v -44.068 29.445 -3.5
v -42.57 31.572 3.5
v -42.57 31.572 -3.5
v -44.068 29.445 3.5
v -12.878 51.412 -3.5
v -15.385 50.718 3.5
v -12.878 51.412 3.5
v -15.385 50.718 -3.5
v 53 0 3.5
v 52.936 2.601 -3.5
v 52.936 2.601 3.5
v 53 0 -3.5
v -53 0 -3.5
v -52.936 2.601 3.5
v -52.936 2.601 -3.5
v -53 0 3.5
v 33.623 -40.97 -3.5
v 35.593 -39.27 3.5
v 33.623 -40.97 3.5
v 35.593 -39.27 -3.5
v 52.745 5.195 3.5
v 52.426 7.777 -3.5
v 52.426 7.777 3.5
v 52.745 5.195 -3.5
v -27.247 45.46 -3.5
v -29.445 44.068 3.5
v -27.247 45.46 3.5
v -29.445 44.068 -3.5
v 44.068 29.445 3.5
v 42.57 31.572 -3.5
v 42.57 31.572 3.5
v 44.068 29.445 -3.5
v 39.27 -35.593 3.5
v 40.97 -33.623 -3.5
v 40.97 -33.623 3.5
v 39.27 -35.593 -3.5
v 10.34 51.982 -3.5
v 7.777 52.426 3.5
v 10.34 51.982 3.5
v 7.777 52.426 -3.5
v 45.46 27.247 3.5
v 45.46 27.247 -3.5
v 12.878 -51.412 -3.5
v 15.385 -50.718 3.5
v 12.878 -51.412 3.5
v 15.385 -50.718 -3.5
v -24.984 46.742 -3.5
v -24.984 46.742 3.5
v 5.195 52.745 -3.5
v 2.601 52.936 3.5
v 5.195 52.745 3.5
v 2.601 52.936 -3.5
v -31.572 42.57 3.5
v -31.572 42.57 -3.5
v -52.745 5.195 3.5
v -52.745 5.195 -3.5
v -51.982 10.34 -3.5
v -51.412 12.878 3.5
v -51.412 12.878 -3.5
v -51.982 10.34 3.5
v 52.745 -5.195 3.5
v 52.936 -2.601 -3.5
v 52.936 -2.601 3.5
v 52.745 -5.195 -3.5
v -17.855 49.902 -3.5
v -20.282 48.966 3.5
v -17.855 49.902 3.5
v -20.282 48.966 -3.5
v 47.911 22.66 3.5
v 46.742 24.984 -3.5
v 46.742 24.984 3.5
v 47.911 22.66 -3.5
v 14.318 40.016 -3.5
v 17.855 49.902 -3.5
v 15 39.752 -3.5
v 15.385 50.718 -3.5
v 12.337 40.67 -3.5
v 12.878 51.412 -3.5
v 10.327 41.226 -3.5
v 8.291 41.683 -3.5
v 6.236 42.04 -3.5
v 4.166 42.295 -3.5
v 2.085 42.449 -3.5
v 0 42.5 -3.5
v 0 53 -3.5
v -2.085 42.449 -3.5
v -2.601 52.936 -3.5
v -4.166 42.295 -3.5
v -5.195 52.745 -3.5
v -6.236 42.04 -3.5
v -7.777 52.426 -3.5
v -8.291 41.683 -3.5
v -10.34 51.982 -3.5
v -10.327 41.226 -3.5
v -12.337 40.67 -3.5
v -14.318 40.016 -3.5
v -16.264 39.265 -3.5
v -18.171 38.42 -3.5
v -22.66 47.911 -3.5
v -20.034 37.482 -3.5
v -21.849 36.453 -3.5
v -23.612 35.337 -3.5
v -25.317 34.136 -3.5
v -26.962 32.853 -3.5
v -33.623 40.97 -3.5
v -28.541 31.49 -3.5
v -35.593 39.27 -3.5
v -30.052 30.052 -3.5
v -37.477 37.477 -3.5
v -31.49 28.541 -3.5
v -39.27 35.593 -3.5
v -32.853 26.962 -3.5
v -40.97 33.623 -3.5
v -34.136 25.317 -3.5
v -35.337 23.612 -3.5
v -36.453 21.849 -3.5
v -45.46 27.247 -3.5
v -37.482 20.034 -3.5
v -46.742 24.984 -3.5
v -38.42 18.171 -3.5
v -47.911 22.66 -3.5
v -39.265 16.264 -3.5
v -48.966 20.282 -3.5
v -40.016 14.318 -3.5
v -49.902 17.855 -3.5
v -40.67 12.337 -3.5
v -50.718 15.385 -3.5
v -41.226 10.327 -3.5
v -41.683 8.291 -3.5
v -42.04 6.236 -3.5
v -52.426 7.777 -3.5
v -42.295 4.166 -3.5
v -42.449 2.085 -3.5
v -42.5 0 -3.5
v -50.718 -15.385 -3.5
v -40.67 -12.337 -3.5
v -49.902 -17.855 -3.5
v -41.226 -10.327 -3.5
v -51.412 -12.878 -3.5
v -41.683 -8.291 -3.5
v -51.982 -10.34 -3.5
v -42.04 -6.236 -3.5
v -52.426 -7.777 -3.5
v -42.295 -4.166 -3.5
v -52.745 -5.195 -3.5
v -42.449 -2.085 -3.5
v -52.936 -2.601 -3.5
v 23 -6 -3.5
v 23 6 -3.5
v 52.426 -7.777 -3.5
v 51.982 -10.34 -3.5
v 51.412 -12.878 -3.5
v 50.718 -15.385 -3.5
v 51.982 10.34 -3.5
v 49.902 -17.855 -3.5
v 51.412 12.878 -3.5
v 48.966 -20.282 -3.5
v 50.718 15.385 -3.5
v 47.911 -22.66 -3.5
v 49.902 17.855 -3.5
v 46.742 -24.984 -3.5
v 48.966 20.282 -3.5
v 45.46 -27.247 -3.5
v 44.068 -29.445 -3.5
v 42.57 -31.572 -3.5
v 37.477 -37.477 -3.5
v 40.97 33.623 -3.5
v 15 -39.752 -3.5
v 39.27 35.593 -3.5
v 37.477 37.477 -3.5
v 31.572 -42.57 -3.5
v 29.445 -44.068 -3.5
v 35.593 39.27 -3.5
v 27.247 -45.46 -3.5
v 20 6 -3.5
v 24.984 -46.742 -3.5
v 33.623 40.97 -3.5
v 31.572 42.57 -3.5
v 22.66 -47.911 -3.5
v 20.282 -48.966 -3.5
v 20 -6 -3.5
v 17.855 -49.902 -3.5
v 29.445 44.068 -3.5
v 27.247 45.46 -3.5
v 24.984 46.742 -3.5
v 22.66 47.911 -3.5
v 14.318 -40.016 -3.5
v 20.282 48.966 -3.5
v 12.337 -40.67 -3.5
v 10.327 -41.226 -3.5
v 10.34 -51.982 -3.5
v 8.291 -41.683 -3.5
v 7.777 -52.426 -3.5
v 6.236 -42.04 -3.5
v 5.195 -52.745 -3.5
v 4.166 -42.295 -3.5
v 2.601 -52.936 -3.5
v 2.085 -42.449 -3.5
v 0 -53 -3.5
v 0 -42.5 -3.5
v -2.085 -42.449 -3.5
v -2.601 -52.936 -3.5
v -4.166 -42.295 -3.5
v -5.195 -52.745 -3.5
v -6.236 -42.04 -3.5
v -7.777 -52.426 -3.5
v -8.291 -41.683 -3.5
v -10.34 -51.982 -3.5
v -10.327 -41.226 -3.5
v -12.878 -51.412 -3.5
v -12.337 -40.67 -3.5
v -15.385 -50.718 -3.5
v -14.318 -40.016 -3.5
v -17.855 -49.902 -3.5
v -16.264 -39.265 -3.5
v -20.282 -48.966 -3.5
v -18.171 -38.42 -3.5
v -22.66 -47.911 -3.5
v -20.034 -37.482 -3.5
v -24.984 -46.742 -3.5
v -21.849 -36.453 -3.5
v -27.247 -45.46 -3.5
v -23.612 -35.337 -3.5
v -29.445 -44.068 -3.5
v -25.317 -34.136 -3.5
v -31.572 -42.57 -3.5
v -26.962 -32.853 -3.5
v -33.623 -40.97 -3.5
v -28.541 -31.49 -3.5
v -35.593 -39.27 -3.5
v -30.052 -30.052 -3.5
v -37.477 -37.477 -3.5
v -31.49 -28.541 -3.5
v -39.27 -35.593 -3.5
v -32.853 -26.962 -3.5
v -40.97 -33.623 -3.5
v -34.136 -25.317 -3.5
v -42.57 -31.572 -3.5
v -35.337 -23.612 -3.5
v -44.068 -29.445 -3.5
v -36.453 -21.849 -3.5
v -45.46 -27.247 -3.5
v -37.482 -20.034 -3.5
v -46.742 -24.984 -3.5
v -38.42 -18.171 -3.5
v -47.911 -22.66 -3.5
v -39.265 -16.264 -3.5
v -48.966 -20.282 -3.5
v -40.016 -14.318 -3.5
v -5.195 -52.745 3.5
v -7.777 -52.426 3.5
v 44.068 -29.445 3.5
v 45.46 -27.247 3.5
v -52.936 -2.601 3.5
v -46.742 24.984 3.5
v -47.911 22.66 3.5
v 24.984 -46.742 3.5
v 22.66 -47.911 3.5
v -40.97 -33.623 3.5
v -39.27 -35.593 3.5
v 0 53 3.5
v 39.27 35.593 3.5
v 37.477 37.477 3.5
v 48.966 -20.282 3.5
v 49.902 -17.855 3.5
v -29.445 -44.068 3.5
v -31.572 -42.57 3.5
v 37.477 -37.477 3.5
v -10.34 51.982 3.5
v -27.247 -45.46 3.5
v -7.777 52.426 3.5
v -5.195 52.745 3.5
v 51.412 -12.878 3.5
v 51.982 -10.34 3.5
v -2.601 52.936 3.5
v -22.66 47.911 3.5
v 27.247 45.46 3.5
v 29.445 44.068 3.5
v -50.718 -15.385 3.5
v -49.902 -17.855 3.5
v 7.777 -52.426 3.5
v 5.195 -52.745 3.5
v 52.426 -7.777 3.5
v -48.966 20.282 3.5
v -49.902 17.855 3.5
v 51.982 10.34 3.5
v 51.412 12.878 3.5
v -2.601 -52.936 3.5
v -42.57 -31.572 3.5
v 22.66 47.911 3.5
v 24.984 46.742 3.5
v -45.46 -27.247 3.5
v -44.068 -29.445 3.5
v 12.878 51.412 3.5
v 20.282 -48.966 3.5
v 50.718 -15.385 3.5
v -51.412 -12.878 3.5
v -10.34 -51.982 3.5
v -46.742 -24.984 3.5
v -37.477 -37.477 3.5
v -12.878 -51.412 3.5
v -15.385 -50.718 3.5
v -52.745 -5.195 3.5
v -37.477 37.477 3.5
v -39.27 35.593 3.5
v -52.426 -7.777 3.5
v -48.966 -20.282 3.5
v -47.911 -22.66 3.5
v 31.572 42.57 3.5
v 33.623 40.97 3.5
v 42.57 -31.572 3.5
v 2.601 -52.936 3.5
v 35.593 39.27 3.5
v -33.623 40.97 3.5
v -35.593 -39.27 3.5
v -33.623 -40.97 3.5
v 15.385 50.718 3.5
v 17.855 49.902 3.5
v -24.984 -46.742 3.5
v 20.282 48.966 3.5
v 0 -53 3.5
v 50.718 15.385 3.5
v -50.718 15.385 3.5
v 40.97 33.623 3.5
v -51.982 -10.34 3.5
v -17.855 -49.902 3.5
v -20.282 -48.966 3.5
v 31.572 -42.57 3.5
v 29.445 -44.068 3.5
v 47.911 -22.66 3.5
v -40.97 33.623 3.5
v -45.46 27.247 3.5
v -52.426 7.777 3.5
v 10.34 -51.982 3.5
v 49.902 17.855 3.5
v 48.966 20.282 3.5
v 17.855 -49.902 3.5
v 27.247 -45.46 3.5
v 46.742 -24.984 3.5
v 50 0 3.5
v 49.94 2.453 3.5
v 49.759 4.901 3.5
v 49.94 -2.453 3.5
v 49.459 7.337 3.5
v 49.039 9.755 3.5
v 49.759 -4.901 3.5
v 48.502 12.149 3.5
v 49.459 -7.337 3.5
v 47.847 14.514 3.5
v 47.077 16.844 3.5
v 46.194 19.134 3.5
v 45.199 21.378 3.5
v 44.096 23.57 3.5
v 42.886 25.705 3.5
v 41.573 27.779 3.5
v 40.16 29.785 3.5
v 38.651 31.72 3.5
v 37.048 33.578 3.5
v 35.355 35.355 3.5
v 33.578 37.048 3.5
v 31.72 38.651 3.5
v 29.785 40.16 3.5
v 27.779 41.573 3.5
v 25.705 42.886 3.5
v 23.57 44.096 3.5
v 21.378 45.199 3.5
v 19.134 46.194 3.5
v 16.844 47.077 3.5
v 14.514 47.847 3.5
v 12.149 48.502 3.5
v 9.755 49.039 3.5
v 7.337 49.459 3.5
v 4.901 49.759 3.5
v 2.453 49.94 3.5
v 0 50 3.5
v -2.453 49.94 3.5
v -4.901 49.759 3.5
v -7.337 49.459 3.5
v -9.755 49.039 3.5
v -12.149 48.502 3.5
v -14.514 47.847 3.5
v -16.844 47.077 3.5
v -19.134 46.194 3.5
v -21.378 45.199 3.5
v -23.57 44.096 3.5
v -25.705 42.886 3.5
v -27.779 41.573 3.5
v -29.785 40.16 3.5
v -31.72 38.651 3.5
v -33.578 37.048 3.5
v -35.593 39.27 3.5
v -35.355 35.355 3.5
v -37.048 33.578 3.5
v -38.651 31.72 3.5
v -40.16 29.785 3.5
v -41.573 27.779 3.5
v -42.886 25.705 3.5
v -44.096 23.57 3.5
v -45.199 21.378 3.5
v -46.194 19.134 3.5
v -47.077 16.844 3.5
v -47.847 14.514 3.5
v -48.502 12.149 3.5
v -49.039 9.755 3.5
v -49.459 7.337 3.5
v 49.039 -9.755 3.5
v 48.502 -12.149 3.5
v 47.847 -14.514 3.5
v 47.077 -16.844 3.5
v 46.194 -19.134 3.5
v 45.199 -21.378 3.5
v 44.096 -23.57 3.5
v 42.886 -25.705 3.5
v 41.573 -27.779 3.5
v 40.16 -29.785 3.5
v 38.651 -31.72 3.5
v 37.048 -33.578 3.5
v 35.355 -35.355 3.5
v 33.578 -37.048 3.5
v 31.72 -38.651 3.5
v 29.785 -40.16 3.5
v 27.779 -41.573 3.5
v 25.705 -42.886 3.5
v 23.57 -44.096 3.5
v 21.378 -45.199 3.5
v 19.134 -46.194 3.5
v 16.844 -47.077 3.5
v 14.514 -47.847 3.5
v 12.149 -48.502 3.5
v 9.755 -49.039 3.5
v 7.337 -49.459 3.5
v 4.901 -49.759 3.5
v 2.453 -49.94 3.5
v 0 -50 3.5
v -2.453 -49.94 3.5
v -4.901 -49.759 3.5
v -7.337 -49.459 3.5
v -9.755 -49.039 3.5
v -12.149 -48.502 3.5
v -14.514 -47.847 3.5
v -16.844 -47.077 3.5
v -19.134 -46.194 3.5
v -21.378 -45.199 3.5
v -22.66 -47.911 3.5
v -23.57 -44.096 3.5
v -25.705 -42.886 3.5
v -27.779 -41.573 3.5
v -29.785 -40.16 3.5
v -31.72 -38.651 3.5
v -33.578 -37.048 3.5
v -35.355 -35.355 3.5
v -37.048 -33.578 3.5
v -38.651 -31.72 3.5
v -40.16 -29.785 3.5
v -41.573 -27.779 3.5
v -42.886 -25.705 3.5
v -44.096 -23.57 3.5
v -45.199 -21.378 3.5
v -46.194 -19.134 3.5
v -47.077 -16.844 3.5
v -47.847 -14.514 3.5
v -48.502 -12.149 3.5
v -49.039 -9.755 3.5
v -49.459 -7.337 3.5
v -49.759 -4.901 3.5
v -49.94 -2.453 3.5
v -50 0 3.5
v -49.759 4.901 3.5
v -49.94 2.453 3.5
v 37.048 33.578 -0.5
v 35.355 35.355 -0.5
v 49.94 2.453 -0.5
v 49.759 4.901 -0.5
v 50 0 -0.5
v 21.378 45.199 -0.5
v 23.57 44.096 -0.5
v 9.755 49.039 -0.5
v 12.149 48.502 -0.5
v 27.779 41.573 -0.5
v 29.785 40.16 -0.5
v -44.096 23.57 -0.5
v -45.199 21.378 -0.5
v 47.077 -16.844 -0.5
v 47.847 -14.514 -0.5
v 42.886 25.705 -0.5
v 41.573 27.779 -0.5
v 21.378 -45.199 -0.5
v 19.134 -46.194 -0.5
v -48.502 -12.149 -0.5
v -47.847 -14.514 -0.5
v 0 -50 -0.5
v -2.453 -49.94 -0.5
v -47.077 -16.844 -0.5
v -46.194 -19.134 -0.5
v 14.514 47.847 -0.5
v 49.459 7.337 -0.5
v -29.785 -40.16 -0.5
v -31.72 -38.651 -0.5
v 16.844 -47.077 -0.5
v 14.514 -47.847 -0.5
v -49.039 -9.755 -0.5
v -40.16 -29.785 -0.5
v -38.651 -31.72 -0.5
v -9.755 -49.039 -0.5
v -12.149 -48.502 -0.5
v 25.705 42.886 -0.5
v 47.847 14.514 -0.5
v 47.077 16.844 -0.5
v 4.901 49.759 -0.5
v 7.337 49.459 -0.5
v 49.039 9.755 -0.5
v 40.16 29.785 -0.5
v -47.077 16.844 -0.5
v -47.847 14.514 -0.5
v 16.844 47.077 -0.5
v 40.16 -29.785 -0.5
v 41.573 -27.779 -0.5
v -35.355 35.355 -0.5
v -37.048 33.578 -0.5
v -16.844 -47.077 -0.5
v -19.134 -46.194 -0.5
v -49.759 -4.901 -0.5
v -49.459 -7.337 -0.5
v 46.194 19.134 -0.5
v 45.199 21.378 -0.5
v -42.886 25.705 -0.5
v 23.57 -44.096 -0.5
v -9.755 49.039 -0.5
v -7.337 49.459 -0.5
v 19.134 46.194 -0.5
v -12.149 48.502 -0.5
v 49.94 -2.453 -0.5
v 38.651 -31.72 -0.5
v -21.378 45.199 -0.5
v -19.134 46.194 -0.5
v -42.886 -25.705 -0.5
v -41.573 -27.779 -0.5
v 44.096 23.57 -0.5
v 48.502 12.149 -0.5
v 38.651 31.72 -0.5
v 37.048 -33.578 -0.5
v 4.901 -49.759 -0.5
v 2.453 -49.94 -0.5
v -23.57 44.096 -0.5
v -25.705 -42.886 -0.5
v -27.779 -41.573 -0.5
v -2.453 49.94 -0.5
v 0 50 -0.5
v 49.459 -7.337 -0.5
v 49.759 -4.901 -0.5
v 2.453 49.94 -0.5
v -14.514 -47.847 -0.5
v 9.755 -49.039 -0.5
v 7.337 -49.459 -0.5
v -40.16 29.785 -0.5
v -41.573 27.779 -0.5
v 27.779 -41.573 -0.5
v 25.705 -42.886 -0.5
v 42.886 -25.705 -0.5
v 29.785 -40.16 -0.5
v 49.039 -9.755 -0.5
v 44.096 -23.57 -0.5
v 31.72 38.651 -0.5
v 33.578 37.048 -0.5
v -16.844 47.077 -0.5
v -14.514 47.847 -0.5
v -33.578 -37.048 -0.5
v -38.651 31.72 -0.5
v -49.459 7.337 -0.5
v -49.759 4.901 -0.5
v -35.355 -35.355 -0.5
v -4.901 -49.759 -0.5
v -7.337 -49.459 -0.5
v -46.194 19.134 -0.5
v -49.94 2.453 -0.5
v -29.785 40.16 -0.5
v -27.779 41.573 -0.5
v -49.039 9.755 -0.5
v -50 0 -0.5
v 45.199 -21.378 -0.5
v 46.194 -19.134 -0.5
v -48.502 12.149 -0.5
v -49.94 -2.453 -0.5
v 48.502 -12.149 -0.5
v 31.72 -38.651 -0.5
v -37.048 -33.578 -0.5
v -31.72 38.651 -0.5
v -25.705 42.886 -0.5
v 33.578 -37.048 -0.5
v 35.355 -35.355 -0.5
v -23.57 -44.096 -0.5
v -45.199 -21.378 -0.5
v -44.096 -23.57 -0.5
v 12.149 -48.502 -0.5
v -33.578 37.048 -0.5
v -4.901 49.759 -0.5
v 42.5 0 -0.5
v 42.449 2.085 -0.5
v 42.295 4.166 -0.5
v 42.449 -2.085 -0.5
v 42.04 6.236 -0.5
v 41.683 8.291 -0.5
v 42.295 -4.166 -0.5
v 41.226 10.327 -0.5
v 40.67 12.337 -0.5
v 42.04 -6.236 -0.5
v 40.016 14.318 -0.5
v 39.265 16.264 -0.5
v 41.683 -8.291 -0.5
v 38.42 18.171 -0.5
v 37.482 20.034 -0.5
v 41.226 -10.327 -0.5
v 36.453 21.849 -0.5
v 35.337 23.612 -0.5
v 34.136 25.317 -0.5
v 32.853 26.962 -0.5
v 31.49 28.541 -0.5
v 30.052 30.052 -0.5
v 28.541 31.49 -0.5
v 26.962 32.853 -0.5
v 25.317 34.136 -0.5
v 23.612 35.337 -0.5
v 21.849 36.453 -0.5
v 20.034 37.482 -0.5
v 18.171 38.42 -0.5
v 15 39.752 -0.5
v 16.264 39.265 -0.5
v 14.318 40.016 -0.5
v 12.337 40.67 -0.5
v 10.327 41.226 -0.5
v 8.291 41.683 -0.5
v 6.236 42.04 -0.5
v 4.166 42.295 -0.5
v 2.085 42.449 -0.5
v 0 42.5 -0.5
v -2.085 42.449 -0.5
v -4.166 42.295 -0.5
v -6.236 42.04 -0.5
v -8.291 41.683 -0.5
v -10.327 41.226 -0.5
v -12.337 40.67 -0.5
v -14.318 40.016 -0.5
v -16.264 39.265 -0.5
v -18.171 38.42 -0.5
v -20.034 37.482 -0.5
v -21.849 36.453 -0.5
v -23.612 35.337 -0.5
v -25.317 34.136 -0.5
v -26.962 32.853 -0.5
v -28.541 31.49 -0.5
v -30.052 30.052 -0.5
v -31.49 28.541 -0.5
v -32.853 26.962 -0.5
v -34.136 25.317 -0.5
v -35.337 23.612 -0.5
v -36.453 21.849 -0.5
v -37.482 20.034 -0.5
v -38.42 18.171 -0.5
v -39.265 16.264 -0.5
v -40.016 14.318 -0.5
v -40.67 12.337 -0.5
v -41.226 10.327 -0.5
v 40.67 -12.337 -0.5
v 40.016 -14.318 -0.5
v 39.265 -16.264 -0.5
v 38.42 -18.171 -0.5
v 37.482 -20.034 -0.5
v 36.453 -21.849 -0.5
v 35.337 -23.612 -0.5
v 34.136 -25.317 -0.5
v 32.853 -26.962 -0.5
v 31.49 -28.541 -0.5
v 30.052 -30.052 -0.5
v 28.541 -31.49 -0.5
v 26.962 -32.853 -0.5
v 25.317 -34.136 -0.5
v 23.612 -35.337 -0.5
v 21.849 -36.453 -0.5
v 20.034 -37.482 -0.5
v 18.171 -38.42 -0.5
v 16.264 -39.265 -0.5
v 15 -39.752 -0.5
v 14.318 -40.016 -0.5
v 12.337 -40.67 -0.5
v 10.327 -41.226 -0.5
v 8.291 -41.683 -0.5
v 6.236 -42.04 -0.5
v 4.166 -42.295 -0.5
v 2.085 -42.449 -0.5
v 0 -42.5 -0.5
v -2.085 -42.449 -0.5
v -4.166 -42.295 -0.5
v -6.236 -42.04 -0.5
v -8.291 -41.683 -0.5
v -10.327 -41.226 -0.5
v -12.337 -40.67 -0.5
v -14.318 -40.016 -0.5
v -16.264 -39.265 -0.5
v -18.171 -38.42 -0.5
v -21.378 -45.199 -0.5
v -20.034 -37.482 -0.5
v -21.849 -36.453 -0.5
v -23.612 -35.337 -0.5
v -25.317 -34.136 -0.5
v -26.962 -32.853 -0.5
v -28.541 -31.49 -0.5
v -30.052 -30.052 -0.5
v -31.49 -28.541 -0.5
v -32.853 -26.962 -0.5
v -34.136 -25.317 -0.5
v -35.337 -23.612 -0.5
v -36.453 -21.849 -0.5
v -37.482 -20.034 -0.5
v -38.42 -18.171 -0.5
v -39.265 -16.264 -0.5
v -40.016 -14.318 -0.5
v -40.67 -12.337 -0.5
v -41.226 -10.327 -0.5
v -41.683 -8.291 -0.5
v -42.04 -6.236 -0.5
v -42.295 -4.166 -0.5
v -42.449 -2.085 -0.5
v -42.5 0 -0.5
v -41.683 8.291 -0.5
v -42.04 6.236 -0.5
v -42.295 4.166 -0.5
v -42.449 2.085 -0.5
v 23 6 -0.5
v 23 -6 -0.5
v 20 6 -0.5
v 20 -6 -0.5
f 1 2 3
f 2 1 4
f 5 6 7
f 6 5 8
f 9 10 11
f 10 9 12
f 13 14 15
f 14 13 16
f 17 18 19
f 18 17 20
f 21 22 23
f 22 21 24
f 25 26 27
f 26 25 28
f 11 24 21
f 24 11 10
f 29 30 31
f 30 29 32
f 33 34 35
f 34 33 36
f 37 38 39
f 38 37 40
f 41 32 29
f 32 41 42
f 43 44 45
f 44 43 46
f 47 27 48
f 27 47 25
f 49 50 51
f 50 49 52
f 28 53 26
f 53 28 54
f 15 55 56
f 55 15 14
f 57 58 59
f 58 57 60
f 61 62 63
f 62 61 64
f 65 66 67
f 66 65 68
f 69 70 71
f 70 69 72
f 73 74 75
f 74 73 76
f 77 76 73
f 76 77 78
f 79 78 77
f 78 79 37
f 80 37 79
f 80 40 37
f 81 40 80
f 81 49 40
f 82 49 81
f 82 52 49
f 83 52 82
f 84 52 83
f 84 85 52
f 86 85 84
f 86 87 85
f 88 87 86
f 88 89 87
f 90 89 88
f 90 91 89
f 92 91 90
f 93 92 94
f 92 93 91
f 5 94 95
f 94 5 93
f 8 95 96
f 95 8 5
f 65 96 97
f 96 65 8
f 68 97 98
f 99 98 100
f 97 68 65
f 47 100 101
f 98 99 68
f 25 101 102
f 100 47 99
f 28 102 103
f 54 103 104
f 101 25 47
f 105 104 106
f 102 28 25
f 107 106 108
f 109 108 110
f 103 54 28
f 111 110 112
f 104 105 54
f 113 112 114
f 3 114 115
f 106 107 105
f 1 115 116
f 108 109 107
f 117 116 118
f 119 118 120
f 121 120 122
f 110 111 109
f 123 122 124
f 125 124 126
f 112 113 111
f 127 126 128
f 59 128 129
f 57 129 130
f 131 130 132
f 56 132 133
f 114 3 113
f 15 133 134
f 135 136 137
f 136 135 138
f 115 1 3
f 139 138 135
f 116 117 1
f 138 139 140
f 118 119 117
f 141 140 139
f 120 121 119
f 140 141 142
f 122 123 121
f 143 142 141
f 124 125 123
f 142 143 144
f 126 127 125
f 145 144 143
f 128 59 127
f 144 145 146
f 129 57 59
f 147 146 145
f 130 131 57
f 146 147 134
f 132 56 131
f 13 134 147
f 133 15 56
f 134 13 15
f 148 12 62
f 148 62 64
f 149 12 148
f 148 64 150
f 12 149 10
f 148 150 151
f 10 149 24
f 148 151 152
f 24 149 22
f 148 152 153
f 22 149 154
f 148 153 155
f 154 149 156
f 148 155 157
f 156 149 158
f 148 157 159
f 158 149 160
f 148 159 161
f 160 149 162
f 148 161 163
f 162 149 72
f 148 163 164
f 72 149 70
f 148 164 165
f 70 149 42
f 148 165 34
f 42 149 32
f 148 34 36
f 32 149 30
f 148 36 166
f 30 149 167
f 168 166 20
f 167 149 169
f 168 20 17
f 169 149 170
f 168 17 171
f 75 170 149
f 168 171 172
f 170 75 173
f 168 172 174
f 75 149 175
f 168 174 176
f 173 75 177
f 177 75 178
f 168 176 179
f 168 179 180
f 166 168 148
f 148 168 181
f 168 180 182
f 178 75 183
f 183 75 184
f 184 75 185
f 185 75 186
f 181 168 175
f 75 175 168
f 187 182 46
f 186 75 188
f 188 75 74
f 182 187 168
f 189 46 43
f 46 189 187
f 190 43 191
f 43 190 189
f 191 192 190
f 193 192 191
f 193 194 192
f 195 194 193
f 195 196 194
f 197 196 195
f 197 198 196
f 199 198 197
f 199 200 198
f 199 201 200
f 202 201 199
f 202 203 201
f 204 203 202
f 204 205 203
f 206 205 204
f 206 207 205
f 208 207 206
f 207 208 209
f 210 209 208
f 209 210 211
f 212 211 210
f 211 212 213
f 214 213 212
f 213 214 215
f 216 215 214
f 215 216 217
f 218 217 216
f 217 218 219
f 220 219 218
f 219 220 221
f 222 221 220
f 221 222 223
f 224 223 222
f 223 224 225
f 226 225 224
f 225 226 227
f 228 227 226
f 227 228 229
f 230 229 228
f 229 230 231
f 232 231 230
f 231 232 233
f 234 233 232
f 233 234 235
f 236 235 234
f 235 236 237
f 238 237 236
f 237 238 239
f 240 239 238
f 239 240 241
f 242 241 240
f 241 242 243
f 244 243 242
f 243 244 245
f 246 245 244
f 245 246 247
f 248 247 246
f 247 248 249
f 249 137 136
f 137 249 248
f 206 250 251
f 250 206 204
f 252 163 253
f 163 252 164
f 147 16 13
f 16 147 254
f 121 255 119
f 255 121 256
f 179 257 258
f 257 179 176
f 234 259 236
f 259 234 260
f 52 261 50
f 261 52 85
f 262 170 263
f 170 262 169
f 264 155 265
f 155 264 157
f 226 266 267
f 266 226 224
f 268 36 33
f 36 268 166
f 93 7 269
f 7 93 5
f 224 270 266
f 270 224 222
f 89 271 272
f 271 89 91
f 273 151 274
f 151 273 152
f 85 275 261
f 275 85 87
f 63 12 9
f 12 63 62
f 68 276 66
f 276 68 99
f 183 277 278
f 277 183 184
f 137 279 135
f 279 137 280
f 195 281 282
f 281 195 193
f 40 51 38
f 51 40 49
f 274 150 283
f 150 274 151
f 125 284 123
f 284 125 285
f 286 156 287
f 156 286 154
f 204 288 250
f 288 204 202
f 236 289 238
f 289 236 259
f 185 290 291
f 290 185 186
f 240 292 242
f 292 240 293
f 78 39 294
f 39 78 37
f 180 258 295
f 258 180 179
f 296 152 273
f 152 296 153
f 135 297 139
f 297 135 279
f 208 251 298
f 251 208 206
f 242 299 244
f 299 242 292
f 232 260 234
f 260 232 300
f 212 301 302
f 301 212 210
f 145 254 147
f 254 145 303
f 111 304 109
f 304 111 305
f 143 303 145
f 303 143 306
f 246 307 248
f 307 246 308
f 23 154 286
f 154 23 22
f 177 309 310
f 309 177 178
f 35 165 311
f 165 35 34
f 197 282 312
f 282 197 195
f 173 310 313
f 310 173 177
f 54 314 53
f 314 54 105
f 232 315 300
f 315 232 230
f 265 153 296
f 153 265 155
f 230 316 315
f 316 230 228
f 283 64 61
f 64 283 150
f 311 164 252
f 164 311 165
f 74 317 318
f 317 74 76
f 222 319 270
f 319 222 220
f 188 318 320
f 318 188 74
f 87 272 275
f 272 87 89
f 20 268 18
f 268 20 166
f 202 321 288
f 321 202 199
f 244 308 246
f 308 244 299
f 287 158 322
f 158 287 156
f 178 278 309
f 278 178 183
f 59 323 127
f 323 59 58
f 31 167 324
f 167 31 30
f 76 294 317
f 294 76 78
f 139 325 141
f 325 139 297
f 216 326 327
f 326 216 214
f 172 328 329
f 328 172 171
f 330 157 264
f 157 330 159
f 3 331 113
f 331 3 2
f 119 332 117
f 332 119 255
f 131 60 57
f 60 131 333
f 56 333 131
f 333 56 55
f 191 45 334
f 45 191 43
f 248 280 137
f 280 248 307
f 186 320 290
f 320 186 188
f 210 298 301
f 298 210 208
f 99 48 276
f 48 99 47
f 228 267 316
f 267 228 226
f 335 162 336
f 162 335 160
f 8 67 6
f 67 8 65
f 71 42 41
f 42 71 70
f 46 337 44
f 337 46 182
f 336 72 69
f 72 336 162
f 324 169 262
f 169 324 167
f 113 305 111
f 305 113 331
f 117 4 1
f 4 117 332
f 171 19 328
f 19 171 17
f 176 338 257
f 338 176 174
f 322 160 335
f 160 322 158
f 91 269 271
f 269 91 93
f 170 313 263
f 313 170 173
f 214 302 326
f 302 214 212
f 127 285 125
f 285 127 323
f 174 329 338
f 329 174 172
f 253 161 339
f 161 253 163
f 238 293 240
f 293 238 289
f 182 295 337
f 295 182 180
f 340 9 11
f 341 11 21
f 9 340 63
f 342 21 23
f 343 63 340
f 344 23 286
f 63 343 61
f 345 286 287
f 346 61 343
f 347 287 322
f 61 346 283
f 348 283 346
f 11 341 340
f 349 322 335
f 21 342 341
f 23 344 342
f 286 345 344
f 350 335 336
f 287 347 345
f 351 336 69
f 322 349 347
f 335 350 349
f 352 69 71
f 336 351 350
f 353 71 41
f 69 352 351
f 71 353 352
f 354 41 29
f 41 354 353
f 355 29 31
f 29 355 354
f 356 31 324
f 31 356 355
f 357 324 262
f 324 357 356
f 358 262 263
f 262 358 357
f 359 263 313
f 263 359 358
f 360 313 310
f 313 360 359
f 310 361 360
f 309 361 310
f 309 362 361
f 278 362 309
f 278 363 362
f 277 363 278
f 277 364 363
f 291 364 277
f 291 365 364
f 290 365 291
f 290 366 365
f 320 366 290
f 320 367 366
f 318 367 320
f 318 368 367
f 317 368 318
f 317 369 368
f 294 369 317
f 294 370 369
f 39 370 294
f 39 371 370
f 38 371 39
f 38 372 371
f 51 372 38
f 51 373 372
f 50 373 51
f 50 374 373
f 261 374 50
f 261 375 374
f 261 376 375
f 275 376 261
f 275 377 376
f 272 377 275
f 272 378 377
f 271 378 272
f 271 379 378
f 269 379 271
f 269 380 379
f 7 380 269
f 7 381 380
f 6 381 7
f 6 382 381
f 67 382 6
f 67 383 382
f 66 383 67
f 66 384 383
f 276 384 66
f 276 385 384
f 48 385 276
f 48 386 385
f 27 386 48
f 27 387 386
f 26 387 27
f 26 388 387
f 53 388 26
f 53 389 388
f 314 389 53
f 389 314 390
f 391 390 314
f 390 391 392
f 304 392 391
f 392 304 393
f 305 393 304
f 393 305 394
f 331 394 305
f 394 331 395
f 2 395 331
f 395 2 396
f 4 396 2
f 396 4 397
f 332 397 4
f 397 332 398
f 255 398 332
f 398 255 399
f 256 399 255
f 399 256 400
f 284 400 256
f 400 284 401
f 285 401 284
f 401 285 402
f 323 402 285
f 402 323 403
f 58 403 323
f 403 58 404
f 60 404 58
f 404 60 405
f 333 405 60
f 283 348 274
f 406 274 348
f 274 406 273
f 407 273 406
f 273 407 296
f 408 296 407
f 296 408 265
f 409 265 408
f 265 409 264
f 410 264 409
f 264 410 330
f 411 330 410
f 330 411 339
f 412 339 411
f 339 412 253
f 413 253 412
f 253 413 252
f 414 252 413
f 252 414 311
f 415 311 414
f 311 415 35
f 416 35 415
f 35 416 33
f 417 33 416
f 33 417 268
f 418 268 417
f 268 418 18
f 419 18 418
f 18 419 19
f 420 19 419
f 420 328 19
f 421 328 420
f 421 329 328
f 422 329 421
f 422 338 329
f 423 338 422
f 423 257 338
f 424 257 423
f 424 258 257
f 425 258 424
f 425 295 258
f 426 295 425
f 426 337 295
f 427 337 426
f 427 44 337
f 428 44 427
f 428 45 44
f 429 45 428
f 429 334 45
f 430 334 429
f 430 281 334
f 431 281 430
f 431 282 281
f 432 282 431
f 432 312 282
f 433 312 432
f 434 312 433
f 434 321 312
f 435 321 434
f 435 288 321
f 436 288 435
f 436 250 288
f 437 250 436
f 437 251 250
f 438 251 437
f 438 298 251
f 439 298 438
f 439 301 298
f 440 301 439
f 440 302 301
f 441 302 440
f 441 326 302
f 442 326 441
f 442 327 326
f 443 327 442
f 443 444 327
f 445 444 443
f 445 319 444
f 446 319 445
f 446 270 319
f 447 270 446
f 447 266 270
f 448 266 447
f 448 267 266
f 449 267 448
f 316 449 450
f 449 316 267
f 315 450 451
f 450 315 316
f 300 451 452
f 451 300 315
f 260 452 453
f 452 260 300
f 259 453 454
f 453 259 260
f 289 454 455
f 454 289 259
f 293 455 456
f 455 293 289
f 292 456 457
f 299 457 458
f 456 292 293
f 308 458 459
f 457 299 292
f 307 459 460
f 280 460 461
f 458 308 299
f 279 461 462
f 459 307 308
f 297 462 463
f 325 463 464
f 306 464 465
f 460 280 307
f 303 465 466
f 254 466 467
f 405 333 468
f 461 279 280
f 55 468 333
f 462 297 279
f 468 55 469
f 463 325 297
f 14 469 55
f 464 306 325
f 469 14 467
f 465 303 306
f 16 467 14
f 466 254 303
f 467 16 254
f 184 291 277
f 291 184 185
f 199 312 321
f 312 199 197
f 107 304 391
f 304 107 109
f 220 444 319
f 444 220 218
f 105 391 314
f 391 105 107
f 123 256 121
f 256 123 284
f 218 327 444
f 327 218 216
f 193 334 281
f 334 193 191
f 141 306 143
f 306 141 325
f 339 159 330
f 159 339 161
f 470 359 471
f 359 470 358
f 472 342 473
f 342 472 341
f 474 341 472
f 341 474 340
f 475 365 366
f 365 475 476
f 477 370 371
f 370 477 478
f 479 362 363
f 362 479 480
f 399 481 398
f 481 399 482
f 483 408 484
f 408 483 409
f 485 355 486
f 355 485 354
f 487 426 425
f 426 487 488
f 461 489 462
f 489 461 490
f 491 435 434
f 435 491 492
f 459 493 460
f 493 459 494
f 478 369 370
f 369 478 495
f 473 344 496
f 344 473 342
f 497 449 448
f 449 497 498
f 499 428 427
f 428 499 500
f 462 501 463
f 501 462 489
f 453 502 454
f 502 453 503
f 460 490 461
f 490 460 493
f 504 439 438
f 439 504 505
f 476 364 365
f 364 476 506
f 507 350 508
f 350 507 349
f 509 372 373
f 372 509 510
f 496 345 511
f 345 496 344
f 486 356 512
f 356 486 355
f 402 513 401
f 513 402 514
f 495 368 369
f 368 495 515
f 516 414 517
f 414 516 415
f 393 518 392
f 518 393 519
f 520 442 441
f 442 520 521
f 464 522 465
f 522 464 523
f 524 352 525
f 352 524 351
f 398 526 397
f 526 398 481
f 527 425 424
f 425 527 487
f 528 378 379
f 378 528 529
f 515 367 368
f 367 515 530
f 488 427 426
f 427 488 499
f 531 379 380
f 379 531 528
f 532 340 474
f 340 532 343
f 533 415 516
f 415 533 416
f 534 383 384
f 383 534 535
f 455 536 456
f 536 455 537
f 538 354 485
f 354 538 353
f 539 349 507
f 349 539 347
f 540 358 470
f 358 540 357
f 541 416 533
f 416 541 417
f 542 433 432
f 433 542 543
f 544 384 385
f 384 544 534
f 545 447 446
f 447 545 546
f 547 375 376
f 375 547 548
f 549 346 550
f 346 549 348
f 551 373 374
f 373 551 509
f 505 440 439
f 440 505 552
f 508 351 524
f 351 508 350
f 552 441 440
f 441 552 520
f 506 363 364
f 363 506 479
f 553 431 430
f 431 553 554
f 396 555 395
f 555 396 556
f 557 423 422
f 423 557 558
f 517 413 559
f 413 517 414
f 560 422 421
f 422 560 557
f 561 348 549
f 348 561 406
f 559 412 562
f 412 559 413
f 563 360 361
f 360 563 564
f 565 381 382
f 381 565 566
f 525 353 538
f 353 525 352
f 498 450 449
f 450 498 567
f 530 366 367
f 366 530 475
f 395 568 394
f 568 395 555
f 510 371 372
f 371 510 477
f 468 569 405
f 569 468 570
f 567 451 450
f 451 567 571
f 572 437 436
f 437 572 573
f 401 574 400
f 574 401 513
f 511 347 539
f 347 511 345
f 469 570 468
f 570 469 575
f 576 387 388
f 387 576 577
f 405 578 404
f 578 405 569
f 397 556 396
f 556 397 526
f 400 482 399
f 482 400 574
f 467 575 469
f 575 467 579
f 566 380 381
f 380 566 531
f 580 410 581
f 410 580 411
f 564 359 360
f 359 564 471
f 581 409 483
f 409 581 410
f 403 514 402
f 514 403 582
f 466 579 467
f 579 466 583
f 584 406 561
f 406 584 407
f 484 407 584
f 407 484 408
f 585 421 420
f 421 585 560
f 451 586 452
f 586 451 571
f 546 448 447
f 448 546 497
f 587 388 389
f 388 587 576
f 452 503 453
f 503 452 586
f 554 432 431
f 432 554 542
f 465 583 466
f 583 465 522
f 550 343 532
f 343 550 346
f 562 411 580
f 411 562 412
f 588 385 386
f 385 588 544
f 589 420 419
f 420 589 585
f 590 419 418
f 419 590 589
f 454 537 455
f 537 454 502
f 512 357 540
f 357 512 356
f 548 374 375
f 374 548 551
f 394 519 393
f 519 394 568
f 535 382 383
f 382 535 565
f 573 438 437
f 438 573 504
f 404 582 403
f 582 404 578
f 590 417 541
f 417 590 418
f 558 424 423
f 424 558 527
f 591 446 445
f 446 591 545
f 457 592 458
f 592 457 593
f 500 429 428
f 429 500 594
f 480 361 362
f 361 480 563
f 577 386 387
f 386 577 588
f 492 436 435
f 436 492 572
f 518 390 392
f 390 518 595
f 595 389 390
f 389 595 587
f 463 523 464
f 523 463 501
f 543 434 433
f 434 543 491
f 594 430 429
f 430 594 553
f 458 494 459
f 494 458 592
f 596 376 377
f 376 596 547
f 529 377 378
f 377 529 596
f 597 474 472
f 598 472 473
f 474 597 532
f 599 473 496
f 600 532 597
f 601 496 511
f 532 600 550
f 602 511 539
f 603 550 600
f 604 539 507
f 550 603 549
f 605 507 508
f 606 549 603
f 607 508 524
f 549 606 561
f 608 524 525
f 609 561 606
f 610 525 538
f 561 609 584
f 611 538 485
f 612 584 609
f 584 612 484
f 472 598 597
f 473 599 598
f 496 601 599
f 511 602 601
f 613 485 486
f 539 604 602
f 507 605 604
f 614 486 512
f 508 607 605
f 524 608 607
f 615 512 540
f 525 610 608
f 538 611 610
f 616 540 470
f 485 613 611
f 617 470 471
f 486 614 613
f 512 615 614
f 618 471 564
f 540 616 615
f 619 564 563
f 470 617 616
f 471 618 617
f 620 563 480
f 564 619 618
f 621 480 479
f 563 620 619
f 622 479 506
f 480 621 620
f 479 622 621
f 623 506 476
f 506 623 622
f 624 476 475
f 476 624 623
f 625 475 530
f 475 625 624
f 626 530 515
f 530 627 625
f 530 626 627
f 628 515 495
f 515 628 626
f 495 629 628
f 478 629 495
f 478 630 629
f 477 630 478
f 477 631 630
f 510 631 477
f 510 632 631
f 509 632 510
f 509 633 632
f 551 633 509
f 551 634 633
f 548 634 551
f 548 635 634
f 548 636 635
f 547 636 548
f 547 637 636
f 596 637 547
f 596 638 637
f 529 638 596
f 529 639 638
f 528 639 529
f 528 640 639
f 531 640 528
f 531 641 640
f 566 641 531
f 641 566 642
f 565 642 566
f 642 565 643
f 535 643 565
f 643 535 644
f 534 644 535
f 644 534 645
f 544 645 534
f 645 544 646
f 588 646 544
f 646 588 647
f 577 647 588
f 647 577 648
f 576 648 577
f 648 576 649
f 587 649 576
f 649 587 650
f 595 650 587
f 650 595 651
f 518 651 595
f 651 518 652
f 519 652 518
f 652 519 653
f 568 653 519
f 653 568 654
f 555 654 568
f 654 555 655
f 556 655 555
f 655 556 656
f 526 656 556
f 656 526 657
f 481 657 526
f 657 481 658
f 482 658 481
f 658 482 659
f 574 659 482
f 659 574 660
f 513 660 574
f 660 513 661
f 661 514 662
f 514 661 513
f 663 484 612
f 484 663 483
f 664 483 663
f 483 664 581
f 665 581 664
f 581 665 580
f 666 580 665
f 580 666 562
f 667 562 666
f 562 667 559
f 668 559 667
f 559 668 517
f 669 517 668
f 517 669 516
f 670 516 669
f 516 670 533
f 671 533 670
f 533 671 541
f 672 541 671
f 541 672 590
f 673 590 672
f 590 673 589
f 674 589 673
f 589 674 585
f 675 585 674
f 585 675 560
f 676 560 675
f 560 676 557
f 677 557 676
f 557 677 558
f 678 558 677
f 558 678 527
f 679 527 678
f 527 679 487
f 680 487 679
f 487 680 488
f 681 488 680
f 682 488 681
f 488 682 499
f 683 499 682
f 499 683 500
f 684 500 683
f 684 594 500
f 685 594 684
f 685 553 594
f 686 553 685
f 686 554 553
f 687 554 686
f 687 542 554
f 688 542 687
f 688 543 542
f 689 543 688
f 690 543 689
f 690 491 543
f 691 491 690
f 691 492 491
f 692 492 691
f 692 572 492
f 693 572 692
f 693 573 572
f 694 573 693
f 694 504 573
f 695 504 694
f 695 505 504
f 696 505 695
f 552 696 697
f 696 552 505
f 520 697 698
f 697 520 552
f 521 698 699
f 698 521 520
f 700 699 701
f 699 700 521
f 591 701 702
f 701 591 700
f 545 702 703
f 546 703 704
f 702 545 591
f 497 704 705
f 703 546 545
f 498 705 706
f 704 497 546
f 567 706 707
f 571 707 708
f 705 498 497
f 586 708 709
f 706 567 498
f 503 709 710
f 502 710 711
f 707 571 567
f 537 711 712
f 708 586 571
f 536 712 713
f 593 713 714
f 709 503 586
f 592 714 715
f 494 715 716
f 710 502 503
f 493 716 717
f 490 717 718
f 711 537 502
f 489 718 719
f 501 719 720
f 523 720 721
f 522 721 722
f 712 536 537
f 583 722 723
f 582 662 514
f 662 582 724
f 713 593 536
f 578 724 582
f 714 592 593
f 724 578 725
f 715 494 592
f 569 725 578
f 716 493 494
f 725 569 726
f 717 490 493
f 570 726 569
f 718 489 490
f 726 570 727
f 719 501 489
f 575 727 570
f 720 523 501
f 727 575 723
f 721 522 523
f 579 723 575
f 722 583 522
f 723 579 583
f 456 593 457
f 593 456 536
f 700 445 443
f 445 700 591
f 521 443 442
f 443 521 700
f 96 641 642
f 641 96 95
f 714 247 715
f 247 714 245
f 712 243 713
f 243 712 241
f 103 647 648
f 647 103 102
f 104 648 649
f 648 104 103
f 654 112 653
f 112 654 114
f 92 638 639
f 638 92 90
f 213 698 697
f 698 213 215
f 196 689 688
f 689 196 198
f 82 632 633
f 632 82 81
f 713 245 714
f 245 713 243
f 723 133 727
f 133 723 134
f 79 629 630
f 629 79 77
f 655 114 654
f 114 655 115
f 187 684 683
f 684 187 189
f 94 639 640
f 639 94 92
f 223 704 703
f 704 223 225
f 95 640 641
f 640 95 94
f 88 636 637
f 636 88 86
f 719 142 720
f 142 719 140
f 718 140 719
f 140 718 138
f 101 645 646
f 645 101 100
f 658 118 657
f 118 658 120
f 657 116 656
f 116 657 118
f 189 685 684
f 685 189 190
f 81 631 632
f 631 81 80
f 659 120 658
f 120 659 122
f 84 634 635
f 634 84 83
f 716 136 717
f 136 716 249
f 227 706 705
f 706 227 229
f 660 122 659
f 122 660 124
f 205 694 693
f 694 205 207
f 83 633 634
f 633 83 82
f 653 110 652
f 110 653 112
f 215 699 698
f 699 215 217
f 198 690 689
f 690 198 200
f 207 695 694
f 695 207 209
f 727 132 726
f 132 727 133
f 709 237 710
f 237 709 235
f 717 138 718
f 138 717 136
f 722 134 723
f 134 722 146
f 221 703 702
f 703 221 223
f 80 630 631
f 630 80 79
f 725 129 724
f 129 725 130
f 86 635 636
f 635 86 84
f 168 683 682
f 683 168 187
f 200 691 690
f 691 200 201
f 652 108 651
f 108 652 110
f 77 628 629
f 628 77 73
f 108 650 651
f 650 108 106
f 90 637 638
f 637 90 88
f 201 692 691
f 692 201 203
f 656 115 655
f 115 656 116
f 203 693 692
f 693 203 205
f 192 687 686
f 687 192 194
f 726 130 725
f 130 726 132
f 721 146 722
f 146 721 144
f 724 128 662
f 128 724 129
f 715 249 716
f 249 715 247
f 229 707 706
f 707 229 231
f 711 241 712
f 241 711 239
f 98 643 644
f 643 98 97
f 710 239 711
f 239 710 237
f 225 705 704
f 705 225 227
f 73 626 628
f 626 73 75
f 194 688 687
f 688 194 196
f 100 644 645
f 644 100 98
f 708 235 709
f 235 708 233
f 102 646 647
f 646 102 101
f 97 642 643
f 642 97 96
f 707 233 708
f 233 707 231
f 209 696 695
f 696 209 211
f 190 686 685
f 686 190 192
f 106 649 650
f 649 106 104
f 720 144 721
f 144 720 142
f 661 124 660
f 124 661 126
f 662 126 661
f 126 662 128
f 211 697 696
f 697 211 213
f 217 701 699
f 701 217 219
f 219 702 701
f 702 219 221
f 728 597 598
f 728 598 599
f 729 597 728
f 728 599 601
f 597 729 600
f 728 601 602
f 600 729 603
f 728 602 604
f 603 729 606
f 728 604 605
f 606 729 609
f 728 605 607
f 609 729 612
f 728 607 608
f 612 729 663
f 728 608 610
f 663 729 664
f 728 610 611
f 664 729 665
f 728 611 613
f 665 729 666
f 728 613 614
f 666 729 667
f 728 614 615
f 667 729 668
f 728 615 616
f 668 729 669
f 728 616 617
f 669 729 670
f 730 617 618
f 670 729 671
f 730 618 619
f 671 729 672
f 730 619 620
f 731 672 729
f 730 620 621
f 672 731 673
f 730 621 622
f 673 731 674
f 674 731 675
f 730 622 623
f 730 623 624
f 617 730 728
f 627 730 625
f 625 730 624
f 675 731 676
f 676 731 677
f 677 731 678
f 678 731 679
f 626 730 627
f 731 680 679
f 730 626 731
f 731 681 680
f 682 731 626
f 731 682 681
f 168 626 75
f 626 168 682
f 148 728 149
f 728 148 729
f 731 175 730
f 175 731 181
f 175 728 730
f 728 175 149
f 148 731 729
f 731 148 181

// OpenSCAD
$fn=128;

difference() {
    cylinder(h=7, d=106, center=true);
    translate([0,0,1.5]) cylinder(h=4, d=100, center=true);
    cylinder(h=14, d=85, center=true);
    }
difference() {
    translate([0,0,-2]) intersection() {
        cylinder(h=3, d=85, center=true);
        translate([15,-50,-1.5]) cube([100,100, 3]);
    }
    translate([20,-6,-10]) cube([3, 12, 20]);
    }
